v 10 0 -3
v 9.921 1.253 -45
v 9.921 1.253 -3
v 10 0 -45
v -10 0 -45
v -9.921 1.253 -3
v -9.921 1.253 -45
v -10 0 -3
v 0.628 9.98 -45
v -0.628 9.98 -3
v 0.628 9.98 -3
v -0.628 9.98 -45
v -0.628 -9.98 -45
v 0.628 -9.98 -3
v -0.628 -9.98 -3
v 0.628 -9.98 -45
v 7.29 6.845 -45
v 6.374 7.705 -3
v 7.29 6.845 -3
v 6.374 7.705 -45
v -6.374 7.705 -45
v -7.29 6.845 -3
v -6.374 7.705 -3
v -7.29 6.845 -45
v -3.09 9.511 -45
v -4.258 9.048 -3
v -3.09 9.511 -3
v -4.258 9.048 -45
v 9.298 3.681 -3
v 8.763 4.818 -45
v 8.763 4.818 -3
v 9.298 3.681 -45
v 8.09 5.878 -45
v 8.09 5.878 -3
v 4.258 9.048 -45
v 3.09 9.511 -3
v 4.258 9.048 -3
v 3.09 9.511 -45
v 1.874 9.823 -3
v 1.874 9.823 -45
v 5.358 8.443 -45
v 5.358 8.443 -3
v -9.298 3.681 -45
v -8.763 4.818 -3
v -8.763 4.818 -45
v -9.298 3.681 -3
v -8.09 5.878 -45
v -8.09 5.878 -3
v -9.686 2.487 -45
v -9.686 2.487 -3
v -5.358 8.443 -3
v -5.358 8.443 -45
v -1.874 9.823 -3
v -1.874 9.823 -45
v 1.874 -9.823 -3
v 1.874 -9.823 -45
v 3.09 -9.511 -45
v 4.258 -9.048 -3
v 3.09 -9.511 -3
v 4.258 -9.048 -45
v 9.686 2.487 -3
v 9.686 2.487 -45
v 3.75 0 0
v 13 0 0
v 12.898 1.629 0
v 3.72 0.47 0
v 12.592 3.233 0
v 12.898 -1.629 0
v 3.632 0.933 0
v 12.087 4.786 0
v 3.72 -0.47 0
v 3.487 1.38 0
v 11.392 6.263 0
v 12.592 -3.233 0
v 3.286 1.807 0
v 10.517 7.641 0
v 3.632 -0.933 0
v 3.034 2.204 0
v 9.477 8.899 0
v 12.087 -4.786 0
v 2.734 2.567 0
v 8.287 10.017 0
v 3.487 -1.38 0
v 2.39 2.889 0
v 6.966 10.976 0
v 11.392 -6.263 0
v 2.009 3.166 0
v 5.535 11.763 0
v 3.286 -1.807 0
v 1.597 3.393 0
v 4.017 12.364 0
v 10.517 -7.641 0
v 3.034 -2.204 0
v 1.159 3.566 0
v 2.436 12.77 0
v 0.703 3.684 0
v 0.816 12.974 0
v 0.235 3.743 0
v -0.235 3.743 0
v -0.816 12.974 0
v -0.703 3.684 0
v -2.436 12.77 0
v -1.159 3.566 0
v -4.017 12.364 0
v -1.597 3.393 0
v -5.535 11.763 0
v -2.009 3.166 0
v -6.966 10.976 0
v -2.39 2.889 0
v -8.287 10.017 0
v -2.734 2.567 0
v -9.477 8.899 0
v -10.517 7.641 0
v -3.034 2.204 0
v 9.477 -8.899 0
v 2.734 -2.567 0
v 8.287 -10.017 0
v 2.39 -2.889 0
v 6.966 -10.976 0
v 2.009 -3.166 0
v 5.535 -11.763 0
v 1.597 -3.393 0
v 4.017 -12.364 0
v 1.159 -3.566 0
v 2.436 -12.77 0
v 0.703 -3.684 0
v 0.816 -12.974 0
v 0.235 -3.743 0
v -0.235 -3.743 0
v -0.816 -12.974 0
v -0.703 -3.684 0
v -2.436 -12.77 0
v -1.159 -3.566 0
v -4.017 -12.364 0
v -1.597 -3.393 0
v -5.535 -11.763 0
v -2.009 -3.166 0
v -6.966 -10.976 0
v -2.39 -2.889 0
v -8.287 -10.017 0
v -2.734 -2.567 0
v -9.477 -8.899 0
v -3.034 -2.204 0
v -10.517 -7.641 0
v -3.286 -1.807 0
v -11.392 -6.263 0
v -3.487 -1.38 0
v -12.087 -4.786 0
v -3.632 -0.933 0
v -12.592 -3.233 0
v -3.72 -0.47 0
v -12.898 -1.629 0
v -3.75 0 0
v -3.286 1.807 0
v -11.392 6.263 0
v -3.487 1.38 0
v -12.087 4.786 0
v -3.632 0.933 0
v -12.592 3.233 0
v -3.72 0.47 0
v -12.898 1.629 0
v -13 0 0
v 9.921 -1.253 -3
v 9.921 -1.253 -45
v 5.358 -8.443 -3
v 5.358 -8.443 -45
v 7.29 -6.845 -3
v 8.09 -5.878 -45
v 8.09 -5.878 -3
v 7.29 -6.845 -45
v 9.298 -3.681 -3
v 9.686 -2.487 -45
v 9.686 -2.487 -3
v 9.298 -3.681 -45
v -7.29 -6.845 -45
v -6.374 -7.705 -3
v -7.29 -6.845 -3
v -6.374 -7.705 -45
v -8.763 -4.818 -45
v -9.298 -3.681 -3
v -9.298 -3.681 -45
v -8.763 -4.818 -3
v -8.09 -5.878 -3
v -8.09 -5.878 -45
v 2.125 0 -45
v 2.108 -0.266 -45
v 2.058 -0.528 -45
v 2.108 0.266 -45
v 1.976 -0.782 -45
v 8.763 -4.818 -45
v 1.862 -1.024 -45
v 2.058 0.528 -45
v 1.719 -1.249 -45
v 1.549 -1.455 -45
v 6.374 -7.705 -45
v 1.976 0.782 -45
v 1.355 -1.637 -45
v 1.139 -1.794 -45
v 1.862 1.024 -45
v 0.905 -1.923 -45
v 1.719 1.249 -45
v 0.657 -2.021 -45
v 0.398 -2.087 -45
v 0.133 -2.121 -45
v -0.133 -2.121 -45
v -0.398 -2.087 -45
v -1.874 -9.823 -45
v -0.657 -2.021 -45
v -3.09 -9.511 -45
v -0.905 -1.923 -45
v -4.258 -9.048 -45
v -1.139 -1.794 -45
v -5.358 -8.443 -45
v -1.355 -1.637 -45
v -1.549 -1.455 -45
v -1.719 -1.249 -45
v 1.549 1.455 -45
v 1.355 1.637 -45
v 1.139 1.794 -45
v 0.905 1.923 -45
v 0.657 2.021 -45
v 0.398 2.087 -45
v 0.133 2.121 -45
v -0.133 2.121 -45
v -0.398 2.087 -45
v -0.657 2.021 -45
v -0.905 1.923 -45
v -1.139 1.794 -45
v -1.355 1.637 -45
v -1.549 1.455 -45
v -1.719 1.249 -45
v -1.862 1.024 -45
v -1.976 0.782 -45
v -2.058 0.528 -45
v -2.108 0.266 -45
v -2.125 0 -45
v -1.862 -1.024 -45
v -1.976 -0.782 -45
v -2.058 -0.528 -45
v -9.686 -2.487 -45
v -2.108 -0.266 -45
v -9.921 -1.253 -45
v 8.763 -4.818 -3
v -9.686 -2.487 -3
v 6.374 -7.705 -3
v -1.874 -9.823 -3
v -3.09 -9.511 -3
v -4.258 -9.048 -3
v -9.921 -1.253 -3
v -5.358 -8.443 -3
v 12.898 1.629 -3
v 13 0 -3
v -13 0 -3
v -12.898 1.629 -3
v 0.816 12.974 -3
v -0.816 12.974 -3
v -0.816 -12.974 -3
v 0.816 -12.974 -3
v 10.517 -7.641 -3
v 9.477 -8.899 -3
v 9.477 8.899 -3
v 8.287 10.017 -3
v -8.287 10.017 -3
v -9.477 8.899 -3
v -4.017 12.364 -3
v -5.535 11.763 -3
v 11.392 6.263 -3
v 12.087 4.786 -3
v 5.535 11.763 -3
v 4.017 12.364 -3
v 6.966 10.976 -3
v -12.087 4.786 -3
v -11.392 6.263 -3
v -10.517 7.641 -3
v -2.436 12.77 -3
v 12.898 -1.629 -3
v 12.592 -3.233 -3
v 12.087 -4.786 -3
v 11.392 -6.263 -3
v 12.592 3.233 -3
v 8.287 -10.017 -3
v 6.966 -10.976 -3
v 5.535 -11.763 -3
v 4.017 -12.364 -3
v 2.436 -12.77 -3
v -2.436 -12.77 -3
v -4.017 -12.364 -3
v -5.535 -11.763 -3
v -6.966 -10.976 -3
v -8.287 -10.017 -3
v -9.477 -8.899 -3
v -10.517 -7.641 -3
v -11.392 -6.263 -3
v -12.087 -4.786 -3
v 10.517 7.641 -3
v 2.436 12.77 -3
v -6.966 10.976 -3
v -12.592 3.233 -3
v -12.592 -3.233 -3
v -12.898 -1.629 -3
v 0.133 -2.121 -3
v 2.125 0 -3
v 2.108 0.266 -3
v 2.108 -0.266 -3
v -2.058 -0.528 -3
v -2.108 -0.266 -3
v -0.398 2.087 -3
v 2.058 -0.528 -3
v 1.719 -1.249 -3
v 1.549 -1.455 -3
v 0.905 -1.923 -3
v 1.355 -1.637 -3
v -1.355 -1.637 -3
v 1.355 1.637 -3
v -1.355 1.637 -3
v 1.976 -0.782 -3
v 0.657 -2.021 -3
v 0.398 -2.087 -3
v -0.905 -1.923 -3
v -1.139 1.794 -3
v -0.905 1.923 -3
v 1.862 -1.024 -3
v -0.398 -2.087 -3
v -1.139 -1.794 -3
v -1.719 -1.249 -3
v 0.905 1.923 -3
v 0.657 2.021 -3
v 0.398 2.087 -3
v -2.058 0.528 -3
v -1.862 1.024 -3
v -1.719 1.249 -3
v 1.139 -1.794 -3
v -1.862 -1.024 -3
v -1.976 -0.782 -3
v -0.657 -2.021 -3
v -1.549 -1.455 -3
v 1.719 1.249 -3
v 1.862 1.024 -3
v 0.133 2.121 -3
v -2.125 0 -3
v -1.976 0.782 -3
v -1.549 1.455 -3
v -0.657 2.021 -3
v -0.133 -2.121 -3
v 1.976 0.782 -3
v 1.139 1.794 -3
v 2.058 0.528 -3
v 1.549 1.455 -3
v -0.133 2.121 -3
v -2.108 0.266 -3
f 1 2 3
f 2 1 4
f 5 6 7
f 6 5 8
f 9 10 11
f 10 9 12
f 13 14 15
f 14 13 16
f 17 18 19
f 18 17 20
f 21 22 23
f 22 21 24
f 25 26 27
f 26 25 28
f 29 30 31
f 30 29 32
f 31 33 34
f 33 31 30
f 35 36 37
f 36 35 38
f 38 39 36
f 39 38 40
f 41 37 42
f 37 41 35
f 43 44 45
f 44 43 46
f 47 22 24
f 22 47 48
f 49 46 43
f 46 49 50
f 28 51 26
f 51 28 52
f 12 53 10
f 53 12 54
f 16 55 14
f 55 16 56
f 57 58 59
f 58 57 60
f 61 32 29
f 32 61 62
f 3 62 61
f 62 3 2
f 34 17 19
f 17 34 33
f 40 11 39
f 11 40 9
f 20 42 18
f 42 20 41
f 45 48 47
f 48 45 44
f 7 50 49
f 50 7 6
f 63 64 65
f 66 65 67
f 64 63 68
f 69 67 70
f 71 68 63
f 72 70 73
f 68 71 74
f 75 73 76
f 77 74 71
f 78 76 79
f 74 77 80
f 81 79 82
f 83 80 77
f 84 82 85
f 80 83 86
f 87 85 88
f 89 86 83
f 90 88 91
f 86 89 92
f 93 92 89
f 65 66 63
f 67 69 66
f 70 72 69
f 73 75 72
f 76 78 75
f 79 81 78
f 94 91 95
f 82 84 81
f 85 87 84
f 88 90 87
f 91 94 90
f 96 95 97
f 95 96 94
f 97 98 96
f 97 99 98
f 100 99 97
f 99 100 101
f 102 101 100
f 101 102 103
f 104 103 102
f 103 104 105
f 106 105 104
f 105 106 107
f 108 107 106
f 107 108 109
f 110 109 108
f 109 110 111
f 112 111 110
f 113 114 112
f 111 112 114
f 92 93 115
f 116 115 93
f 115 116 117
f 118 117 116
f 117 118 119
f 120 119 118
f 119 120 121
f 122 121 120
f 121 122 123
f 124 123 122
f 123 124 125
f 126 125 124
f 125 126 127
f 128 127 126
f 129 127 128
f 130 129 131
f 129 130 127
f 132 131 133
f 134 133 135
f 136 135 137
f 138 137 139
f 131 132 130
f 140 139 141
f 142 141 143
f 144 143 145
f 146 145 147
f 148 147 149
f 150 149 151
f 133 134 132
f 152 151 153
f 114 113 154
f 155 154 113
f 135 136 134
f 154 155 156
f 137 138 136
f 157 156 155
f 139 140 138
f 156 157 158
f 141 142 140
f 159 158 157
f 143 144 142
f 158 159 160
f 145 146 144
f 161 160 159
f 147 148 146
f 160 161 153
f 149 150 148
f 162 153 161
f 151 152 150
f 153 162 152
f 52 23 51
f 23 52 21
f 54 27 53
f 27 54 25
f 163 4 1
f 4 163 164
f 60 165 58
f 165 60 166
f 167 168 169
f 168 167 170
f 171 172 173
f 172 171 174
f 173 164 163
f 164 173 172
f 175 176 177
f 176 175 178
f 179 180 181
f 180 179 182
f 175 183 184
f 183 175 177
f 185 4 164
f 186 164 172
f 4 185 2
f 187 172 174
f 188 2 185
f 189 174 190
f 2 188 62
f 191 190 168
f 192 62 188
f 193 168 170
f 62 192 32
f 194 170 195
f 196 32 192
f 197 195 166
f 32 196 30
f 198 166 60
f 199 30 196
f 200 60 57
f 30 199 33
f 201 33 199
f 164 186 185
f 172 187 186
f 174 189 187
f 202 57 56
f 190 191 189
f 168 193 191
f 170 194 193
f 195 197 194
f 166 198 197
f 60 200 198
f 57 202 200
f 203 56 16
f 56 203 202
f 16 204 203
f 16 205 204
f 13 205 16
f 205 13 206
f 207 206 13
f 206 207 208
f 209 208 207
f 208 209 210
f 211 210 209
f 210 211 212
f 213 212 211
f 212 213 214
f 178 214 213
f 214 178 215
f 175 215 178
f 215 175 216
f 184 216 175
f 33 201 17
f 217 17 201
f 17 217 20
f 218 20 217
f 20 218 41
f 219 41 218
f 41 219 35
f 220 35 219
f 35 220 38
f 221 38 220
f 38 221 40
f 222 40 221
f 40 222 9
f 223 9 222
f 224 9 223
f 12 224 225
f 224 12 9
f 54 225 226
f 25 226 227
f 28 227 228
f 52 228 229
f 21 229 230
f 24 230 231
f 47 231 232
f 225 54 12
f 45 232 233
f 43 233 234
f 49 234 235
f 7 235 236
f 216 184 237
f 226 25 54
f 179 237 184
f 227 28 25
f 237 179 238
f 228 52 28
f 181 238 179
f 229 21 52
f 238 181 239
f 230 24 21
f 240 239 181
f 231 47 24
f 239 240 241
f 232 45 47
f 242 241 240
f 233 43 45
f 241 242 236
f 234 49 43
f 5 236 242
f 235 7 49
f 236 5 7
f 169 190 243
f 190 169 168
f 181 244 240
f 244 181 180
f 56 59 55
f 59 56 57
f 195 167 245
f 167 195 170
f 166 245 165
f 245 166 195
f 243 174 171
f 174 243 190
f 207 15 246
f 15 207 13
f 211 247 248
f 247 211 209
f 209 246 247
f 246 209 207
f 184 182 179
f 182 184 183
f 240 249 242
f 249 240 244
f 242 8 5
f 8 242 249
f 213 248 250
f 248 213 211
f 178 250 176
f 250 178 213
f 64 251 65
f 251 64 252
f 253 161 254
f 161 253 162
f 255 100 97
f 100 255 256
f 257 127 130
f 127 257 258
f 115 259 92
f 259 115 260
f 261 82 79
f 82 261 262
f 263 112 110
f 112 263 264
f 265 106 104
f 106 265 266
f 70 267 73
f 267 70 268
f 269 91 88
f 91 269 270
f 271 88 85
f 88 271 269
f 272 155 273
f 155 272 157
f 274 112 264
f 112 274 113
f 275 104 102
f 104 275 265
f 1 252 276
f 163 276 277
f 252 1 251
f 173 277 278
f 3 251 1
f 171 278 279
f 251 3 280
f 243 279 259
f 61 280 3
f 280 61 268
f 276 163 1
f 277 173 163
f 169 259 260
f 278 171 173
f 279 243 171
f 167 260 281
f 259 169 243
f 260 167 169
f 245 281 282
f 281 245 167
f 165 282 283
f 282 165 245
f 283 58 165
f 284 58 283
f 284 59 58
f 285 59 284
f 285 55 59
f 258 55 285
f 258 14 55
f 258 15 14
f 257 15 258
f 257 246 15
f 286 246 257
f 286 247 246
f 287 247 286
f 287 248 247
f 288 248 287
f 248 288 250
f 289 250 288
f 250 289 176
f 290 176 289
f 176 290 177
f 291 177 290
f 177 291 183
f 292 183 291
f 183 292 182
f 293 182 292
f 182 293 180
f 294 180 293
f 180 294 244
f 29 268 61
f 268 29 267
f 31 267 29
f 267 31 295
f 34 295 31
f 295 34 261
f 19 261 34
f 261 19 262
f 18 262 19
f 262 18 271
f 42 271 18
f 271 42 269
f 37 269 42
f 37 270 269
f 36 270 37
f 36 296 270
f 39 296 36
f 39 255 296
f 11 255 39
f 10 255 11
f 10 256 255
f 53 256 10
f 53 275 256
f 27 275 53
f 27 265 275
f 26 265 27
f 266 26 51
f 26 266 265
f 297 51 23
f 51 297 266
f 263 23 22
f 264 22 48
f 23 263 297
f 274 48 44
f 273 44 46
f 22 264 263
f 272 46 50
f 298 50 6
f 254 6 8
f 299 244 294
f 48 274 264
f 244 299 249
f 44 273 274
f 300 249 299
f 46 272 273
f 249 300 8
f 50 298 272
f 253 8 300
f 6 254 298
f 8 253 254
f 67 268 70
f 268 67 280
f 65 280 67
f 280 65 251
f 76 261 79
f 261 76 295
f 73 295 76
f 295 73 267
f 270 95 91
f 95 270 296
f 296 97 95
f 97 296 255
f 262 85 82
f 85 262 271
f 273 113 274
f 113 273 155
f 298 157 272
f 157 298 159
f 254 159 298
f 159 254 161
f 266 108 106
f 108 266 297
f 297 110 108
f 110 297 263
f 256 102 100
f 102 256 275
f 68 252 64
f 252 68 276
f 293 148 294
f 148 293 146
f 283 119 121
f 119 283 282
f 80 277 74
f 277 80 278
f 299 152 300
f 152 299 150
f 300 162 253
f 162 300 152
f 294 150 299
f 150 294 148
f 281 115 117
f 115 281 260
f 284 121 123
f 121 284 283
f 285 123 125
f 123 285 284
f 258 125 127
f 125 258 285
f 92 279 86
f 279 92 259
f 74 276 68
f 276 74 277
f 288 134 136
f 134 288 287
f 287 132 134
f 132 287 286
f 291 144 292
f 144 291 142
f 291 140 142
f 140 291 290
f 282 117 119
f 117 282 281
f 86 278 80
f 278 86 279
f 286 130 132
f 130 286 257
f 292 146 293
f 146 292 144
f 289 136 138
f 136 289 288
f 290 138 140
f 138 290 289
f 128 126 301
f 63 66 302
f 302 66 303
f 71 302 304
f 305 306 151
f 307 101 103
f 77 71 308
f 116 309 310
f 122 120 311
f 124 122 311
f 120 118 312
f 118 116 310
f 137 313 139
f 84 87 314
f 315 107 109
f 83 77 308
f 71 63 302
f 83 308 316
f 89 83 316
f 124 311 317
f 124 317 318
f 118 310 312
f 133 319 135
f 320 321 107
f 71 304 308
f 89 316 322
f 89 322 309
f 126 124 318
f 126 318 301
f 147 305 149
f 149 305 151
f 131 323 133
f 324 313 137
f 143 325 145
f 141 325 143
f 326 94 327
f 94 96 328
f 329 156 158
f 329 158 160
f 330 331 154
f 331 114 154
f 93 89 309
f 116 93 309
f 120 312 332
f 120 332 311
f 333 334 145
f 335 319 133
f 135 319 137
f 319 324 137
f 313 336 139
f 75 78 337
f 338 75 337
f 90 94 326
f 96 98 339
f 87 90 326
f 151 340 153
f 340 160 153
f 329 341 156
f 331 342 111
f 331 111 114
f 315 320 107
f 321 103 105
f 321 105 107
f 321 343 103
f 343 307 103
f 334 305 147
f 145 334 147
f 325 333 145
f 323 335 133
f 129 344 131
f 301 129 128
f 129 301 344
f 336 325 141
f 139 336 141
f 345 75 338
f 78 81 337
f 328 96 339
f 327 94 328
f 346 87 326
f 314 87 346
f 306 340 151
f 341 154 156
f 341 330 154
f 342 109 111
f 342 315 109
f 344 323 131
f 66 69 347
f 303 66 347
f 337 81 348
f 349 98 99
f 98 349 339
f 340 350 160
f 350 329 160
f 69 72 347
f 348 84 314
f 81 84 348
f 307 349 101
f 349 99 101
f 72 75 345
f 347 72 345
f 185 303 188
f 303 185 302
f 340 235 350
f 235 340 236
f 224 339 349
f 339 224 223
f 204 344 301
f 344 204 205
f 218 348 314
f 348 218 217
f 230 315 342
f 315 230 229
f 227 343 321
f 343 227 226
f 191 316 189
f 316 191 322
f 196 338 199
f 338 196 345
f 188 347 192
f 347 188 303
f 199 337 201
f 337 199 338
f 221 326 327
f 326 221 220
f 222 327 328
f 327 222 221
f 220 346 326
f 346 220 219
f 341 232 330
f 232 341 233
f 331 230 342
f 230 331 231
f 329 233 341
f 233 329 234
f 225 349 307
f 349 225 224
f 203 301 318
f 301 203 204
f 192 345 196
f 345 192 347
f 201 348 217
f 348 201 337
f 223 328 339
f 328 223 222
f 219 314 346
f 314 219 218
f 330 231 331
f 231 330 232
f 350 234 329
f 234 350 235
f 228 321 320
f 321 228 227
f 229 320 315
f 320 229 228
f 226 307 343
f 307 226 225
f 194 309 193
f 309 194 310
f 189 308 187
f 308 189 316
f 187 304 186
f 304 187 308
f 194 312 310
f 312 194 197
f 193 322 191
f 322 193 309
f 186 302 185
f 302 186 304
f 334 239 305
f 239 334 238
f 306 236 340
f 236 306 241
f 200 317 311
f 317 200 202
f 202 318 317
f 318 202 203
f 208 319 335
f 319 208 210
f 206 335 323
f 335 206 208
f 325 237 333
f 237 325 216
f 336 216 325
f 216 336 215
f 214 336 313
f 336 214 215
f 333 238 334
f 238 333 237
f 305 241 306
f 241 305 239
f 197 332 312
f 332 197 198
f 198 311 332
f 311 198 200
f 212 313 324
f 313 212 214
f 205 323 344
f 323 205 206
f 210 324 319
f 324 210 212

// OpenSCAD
$fn = 50;


difference() {
	union() {
		translate(v = [0, 0, -45.0000000000]) {
			cylinder(h = 45, r = 10.0000000000);
		}
		translate(v = [0, 0, -3.0000000000]) {
			cylinder(h = 3, r = 13.0000000000);
		}
	}
	union() {
		translate(v = [0, 0, 0]) {
			rotate(a = [0, 0, 0]) {
				difference() {
					union() {
						#translate(v = [0, 0, -45.0000000000]) {
							cylinder(h = 45, r = 2.0000000000);
						}
						#translate(v = [0, 0, -3]) {
							cylinder(h = 3, r = 10.0000000000, r1 = 2.1250000000, r2 = 3.7500000000);
						}
						#translate(v = [0, 0, -45.0000000000]) {
							cylinder(h = 45, r = 2.1250000000);
						}
						#translate(v = [0, 0, -45.0000000000]) {
							cylinder(h = 45, r = 2.0000000000);
						}
					}
					union();
				}
			}
		}
	}
}
